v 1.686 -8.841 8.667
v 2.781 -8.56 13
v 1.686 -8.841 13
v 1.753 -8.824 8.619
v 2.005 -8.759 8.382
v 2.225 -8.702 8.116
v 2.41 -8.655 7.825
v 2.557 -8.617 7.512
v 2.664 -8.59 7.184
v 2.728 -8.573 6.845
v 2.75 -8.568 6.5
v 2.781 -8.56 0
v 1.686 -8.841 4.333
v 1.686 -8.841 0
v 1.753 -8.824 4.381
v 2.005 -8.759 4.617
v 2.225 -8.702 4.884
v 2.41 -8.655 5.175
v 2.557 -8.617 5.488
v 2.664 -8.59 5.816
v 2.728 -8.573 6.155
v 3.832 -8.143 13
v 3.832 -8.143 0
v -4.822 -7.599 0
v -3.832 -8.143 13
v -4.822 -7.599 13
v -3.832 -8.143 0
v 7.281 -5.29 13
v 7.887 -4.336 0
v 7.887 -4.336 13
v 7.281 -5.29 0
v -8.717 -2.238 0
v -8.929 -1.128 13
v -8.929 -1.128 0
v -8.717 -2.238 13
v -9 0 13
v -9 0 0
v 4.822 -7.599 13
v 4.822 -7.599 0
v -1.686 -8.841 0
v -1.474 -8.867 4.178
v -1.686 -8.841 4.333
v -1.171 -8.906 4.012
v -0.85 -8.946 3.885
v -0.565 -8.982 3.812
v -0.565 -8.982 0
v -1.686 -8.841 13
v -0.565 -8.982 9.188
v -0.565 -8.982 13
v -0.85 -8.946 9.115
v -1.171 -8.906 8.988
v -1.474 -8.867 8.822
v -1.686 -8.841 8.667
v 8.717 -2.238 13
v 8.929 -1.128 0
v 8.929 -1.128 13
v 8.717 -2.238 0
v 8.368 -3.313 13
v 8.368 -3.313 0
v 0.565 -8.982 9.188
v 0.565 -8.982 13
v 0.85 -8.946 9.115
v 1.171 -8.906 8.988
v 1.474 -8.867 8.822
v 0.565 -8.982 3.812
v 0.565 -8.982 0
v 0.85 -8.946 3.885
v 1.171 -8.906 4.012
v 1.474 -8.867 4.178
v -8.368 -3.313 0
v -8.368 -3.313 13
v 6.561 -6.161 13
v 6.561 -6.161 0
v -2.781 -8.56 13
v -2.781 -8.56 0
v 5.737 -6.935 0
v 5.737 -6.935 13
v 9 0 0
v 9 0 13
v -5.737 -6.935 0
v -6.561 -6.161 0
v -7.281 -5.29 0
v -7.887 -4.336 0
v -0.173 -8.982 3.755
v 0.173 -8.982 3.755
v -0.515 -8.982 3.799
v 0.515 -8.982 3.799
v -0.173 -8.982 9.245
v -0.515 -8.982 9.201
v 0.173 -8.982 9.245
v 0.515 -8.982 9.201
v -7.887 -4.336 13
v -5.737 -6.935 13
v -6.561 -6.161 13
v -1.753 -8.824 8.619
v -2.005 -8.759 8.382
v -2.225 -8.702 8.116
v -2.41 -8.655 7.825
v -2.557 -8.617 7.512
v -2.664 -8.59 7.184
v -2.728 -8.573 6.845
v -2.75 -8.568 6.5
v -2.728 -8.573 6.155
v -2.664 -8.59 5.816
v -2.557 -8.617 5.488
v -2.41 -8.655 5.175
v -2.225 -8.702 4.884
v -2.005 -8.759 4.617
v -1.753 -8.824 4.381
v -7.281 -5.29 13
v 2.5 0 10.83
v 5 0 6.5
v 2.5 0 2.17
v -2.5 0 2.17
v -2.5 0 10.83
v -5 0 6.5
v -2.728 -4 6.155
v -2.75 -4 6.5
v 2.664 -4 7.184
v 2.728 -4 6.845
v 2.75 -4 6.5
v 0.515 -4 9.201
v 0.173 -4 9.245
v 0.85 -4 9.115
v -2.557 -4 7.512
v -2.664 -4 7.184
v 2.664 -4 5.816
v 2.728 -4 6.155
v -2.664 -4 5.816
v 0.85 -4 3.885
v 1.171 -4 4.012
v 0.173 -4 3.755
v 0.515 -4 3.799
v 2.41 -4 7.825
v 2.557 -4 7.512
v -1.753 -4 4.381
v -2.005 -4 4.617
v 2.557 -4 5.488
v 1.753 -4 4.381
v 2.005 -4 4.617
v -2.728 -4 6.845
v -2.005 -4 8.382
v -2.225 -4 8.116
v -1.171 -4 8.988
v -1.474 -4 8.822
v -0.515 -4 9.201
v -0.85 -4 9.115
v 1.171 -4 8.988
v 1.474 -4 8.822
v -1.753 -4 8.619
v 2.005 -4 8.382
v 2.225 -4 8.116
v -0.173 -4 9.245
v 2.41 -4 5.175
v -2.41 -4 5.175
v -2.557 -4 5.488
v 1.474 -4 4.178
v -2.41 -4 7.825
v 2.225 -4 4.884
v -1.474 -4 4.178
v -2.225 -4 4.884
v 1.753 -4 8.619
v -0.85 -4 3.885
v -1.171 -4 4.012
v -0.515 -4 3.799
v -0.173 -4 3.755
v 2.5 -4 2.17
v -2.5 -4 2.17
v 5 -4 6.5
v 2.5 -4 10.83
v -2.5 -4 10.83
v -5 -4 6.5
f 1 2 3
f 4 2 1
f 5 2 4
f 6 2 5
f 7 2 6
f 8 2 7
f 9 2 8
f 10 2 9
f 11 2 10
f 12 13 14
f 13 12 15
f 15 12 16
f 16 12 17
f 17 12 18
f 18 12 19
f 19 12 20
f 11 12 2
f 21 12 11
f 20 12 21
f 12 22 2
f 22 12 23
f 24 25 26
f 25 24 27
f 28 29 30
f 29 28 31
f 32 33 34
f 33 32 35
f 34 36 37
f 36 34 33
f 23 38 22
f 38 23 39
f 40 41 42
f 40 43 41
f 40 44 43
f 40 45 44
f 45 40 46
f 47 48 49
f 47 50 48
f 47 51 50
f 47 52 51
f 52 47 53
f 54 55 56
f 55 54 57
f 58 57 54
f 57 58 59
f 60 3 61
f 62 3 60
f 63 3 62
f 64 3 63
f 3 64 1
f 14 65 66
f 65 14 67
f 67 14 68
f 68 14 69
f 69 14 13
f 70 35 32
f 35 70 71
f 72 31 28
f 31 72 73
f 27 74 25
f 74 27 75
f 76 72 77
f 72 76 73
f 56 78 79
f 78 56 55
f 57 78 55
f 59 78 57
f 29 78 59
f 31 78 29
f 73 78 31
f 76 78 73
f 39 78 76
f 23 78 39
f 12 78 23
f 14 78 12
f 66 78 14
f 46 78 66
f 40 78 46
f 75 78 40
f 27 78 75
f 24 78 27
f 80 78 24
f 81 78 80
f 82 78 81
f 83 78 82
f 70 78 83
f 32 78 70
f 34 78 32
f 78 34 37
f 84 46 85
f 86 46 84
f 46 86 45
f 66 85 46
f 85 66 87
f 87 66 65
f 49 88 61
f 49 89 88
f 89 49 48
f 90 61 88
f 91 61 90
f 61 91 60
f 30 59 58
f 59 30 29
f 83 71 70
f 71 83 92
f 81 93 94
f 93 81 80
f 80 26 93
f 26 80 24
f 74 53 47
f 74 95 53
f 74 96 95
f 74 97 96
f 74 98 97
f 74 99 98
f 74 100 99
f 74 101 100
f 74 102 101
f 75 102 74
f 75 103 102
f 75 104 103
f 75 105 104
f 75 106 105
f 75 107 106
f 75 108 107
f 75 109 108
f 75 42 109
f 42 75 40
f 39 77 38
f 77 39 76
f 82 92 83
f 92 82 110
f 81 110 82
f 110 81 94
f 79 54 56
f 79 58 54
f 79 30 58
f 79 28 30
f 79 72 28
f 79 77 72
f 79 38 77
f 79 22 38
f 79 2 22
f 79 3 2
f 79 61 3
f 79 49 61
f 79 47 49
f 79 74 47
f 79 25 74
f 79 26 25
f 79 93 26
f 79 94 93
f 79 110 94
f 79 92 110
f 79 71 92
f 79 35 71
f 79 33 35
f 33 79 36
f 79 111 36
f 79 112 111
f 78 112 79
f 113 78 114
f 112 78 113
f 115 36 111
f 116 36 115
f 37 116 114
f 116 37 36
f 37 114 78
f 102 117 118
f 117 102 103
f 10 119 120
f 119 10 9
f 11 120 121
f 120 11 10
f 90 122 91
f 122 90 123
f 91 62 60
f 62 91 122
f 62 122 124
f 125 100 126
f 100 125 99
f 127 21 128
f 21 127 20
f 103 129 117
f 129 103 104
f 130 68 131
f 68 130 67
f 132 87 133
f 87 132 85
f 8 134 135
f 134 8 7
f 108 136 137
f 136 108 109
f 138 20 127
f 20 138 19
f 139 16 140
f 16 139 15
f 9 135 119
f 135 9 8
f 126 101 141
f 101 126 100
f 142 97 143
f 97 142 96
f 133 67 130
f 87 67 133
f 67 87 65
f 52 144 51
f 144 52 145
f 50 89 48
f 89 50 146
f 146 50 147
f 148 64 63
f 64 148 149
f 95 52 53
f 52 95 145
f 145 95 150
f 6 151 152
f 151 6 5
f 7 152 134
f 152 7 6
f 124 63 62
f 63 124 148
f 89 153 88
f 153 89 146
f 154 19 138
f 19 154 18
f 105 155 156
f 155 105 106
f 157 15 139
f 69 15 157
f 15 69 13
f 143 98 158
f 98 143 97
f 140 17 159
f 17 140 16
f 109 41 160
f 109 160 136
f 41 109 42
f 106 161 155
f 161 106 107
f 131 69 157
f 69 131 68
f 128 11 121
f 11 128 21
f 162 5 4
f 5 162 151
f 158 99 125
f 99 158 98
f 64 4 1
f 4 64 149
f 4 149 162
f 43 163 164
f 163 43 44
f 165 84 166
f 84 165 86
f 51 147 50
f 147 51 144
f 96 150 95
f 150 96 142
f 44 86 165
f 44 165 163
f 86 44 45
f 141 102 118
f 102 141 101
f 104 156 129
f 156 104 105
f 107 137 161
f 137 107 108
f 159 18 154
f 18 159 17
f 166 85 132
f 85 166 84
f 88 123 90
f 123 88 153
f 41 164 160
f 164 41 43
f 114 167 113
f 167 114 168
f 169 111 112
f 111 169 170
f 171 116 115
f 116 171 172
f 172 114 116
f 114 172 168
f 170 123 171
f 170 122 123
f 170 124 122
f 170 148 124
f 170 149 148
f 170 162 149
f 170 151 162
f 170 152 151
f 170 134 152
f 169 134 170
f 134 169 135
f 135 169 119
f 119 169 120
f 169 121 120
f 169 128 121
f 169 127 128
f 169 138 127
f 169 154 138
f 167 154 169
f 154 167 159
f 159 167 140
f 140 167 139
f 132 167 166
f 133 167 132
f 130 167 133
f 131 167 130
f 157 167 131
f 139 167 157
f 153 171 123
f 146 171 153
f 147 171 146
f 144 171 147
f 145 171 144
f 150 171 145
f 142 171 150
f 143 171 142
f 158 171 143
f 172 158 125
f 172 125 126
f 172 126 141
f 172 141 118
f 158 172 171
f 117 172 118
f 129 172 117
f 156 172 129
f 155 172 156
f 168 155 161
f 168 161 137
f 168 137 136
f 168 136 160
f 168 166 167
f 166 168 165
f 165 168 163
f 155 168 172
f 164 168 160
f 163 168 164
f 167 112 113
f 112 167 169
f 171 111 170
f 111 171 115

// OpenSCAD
$fn=50;

diameter=18;
height=13;
screw_diameter=5.5;
screw_length=40;

difference(){

     cylinder(h=height, d=diameter, center=false);

     translate([-diameter/2, 0, 0]) {
          cube([diameter, diameter, height], center=false);
     }

     translate([0, screw_length/ 2, height/2]) {
          rotate(a=90, v=[1,0,0]) {
               cylinder(h=screw_length, d=screw_diameter, center=false);
          }
     }

     translate([0, 0, height/2]) {
          rotate(a=90, v=[1,0,0]) {
               cylinder($fn=6, d=10, h=4);
          }
     }

}
